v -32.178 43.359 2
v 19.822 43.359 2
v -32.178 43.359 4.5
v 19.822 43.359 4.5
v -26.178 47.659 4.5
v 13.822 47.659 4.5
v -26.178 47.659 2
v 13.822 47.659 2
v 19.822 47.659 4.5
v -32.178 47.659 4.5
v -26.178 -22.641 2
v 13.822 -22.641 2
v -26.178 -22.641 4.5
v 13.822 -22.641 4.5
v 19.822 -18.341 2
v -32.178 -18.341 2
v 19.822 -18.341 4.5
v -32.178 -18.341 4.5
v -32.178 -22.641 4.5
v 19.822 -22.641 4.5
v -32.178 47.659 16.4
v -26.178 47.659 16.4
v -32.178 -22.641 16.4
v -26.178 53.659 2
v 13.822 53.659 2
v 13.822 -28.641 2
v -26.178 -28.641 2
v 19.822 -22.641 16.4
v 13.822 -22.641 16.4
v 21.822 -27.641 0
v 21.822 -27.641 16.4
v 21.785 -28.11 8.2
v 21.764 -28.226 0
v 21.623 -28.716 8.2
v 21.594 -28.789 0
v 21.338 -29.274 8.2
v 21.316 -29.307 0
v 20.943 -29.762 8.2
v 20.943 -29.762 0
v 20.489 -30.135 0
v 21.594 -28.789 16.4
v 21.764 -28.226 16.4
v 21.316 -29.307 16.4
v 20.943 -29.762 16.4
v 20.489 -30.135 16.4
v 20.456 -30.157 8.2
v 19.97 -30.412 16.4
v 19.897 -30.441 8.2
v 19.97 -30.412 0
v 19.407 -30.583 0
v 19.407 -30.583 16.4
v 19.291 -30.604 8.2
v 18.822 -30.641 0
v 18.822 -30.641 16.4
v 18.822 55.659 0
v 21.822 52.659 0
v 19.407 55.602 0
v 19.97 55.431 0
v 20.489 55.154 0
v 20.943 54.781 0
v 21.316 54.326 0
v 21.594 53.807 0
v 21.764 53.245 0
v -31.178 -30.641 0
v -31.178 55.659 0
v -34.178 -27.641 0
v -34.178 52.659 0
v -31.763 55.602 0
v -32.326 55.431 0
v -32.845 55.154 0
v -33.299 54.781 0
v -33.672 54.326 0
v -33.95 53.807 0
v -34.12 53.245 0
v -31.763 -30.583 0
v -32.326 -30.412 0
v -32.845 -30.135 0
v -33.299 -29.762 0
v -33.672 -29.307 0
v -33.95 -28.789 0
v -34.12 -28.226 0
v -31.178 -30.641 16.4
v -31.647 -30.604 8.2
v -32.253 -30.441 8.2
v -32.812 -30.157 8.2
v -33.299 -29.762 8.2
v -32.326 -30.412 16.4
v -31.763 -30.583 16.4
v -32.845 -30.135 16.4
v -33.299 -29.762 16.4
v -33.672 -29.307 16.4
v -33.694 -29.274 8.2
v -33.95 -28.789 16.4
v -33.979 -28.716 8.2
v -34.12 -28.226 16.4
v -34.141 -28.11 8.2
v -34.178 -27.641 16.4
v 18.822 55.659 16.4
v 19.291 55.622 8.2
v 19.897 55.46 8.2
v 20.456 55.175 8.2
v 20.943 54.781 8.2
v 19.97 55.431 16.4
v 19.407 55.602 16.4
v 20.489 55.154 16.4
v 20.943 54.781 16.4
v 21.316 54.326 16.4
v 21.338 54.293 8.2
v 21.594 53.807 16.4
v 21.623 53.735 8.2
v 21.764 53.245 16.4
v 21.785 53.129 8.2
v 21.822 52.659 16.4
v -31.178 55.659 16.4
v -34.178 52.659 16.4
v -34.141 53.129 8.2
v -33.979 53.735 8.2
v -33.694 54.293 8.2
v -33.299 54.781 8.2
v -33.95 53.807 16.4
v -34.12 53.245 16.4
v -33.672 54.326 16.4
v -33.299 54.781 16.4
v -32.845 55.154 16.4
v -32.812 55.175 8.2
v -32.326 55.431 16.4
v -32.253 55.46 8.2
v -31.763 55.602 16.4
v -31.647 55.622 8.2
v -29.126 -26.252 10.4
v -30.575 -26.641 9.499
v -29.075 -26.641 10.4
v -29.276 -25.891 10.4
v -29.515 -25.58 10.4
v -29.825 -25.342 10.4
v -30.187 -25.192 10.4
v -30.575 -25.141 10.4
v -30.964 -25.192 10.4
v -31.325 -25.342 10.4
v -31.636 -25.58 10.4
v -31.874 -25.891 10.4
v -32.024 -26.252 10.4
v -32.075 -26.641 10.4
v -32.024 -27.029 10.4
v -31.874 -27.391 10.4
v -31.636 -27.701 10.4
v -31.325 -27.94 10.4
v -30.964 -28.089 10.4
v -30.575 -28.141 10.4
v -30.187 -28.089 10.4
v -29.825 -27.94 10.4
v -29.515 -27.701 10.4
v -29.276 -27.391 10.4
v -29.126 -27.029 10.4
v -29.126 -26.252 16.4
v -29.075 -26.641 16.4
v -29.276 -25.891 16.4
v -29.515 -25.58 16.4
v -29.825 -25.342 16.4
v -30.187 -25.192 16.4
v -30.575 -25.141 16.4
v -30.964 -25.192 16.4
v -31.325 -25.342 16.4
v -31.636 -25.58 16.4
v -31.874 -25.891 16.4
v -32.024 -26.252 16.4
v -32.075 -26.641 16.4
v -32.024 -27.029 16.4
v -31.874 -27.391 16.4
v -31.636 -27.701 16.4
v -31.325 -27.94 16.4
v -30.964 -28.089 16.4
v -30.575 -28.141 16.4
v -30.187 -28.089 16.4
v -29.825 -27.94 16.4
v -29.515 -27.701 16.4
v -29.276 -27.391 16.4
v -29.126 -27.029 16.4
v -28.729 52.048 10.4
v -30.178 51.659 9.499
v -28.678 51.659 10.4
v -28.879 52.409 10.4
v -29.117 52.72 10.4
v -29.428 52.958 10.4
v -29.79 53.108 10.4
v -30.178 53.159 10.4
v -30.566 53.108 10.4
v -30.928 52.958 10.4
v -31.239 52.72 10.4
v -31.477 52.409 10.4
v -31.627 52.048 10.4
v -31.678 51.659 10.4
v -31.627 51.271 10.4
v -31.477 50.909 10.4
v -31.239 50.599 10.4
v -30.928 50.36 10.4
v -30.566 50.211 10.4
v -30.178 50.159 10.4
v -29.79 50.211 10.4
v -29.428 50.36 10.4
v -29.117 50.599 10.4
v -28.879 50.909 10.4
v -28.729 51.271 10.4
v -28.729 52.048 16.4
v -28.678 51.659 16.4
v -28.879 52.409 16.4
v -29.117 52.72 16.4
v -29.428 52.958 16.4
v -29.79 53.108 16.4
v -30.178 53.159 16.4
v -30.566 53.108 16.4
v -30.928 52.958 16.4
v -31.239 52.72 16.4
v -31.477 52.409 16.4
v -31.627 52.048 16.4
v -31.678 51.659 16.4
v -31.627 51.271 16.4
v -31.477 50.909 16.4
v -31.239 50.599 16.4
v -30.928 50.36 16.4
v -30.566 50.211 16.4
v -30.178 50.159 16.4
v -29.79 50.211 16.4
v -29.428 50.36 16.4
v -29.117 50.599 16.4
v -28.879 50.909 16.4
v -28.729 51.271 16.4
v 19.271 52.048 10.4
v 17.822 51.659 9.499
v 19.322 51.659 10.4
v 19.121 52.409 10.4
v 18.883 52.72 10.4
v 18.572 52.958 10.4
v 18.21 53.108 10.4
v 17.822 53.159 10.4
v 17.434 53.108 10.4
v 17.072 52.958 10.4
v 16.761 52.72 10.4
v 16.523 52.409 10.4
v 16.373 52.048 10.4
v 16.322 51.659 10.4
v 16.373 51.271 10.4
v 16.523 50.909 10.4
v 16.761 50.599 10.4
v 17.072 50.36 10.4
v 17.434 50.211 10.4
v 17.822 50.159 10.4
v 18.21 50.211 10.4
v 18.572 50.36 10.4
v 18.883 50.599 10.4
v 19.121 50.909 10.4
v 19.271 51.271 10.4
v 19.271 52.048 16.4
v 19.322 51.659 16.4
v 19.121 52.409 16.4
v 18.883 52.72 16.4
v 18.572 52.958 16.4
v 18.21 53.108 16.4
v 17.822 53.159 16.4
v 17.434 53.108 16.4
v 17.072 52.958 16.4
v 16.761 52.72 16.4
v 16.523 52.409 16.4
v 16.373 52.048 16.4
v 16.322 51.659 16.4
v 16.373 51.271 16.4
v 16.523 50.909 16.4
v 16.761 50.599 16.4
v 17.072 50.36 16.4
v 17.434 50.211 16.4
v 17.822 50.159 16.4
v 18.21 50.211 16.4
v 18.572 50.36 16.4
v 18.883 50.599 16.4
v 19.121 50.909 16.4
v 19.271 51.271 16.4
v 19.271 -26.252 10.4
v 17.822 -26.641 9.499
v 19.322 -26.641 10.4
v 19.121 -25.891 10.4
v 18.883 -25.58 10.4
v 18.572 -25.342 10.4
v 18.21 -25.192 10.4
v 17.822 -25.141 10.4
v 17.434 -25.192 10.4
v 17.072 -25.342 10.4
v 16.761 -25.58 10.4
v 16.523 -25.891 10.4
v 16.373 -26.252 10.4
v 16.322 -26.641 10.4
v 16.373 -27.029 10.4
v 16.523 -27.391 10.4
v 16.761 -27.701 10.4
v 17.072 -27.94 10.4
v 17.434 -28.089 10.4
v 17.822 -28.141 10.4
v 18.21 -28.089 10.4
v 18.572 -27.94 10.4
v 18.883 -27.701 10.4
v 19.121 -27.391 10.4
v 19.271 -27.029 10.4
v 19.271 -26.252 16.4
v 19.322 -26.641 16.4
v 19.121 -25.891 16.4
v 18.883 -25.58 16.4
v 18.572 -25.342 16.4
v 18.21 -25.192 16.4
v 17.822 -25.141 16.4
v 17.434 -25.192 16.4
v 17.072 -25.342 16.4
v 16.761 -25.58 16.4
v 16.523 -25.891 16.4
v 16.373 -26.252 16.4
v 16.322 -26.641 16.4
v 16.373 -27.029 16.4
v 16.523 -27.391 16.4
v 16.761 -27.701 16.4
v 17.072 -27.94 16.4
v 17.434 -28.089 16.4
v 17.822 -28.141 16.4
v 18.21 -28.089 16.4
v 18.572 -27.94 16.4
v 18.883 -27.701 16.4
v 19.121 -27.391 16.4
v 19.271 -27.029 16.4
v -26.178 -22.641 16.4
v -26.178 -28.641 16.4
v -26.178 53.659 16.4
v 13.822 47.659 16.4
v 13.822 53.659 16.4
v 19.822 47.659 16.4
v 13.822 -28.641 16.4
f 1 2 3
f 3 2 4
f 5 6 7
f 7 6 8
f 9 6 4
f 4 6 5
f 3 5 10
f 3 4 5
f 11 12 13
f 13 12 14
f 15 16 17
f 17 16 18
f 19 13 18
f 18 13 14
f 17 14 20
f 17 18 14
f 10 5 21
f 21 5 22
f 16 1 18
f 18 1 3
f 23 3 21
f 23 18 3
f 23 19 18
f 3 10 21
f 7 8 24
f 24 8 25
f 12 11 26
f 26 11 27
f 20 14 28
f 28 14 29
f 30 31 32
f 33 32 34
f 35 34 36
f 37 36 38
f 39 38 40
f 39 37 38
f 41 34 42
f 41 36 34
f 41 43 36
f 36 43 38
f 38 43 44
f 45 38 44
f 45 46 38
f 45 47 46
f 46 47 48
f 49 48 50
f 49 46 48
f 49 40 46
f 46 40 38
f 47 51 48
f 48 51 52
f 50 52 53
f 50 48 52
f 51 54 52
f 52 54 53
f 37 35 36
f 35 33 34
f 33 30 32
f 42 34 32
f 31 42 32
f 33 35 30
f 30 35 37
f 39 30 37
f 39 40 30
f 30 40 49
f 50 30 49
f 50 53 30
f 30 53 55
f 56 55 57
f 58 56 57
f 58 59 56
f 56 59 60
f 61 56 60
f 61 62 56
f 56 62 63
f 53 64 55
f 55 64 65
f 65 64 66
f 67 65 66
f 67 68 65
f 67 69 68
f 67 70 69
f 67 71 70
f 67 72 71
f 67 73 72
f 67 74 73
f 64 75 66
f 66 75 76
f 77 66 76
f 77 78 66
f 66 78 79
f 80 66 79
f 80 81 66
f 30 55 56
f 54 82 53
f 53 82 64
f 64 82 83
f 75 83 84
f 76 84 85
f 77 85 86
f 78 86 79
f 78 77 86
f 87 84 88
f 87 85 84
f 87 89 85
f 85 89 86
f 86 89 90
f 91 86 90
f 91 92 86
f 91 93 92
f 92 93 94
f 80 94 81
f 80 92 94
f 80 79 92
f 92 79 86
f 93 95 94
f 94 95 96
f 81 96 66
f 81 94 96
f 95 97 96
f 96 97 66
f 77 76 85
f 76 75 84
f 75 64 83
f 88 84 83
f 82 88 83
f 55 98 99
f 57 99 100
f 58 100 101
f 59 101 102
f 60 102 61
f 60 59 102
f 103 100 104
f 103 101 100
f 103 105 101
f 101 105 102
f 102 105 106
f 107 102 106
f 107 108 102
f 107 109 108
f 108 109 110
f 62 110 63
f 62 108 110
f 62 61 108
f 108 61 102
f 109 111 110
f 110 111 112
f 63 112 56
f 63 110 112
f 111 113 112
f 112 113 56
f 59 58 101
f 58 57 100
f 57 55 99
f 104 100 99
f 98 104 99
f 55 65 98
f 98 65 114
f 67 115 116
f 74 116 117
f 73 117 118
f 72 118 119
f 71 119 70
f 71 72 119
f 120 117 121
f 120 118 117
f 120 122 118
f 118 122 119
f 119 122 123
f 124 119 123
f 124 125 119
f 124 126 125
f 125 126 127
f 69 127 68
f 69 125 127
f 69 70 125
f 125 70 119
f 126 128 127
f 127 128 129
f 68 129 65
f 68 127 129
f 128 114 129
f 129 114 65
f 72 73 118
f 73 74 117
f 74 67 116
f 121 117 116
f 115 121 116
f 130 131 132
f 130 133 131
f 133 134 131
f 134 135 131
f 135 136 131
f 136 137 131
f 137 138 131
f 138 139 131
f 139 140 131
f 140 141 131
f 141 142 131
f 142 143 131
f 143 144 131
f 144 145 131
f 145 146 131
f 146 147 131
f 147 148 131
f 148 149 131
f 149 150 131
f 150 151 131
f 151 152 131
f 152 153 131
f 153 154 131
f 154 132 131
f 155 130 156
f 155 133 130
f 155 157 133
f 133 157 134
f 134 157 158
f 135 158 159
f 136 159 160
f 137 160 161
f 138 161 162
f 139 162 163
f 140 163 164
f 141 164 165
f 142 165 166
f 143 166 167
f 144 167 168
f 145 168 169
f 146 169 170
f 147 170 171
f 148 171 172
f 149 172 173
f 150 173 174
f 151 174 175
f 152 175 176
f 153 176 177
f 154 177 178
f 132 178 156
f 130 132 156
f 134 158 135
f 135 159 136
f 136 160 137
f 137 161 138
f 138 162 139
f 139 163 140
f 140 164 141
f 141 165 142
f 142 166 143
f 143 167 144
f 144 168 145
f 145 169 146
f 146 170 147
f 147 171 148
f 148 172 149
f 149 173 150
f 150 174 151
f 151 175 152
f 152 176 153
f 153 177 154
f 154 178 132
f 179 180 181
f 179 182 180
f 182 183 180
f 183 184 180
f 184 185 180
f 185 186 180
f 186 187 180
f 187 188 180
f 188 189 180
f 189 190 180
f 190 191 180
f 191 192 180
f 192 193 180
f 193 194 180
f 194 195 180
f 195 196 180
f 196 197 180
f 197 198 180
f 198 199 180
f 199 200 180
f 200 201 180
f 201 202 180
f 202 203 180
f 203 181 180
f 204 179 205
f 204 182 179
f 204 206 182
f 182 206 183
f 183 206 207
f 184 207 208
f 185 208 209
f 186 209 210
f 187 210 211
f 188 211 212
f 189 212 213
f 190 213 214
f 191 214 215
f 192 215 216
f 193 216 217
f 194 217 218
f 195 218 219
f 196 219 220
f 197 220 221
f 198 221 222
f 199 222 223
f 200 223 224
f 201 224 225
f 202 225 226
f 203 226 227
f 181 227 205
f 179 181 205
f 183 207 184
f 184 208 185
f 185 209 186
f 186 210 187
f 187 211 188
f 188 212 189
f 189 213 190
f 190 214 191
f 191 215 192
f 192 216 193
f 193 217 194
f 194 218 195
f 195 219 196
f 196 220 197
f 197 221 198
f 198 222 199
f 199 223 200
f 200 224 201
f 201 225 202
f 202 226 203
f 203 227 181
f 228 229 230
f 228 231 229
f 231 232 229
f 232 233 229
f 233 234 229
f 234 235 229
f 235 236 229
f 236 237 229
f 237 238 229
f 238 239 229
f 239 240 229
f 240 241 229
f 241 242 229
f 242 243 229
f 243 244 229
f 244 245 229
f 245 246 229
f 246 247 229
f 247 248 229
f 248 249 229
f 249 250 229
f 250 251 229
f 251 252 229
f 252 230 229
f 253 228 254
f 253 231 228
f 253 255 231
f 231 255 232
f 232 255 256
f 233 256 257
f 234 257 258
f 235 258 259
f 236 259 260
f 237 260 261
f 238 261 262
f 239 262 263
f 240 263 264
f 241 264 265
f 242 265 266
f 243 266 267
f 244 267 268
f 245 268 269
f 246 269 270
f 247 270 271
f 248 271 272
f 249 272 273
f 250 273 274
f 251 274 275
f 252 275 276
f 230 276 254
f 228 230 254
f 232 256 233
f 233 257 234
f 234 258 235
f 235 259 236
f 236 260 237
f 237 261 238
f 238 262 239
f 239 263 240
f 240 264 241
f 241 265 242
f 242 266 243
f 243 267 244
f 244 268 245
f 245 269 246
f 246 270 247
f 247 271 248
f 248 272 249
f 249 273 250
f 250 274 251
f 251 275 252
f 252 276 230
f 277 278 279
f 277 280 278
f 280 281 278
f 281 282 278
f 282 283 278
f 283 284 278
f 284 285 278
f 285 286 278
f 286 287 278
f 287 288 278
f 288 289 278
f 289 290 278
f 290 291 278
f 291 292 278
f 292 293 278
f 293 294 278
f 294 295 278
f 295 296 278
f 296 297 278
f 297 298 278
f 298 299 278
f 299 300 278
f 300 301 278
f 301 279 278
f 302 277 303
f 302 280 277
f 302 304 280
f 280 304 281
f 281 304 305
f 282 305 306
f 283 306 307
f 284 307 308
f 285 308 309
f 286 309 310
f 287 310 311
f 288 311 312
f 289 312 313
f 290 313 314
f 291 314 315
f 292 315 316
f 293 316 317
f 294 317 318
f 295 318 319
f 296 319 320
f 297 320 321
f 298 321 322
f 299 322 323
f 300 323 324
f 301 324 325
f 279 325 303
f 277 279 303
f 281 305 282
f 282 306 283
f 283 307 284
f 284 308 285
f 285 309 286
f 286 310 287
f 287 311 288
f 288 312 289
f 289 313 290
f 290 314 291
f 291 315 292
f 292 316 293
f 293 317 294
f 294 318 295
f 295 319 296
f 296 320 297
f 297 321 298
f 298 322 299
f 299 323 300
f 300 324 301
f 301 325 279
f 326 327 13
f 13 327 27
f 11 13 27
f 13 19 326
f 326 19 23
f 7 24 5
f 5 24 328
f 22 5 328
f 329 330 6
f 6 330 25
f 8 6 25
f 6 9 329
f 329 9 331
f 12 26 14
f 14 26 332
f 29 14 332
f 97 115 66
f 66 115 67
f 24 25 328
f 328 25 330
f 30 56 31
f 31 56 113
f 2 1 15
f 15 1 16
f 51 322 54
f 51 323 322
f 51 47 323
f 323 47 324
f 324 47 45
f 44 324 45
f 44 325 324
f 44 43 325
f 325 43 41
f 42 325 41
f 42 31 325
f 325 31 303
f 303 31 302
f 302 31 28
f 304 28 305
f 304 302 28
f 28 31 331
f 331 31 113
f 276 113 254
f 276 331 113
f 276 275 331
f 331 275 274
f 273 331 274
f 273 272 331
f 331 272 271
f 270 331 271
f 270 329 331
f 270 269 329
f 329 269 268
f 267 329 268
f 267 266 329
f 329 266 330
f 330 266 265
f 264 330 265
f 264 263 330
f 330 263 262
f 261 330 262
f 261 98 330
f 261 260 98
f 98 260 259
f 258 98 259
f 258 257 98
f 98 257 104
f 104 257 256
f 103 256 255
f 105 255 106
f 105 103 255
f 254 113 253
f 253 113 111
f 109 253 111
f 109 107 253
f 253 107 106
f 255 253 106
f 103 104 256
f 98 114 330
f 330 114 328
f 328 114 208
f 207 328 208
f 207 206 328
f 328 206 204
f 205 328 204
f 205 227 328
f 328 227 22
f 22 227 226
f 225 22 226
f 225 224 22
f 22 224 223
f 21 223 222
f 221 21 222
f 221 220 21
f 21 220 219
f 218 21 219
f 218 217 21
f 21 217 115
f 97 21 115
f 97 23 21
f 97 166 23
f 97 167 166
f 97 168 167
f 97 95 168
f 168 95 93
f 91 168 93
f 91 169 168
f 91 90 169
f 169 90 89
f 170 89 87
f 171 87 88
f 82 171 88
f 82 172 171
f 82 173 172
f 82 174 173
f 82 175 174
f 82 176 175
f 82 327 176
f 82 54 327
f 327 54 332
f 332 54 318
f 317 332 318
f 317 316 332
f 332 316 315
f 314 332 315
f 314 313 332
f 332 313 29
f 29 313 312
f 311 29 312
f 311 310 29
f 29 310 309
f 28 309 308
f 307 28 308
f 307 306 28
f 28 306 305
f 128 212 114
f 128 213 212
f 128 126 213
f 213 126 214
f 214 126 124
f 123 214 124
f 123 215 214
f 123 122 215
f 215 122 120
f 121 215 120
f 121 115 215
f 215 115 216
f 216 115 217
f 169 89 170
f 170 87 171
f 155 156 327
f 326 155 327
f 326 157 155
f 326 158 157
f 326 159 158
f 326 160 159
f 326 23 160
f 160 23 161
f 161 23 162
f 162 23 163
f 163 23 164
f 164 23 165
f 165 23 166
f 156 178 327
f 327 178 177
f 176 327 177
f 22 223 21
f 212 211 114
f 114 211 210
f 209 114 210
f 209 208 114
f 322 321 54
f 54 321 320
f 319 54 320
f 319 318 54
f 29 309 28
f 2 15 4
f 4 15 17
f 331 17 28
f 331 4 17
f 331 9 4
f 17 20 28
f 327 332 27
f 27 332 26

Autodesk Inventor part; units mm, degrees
ref_plane "YZ Plane" through (0, 0, 0) normal (1, 0, 0) x (0, 1, 0)
ref_plane "XZ Plane" through (0, 0, 0) normal (0, 1, 0) x (-1, 0, 0)
ref_plane "XY Plane" through (0, 0, 0) normal (0, 0, 1) x (1, 0, 0)
sketch "Sketch1" plane through (0, 0, 0) normal (0, 0, 1) x (1, 0, 0)
  line L0 (-34.1779, 55.6594) -> (21.8221, 55.6594)
  line L1 (21.8221, 55.6594) -> (21.8221, -30.6406)
  line L2 (21.8221, -30.6406) -> (-34.1779, -30.6406)
  line L3 (-34.1779, -30.6406) -> (-34.1779, 55.6594)
  point P0 (0, 0)
  dimension "d0" = 56
  dimension "d1" = 86.3
extrude "Extrusion1" add sketch "Sketch1" along normal blind 2
sketch "Sketch2" plane through (0, 0, 2) normal (0, 0, 1) x (1, 0, 0)
  line L0 (-34.1779, 55.6594) -> (21.8221, 55.6594)
  line L1 (21.8221, 55.6594) -> (21.8221, -30.6406)
  line L2 (21.8221, -30.6406) -> (-34.1779, -30.6406)
  line L3 (-34.1779, -30.6406) -> (-34.1779, 55.6594)
  line L4 (-32.1779, 53.6594) -> (19.8221, 53.6594)
  line L5 (19.8221, 53.6594) -> (19.8221, -28.6406)
  line L6 (19.8221, -28.6406) -> (-32.1779, -28.6406)
  line L7 (-32.1779, -28.6406) -> (-32.1779, 53.6594)
  point P0 (0, 0)
  dimension "d4" = 2
  dimension "d5" = 2
  dimension "d6" = 2
  dimension "d7" = 2
extrude "Extrusion2" add sketch "Sketch2" along normal blind 14.4
sketch "Sketch3" plane through (0, 0, 2) normal (0, 0, 1) x (1, 0, 0)
  line L0 (-34.1779, 55.6594) -> (-26.1779, 55.6594)
  line L1 (-26.1779, 55.6594) -> (-26.1779, 47.6594)
  line L2 (-26.1779, 47.6594) -> (-34.1779, 47.6594)
  line L3 (-34.1779, 47.6594) -> (-34.1779, 55.6594)
  line L4 (21.8221, 55.6594) -> (13.8221, 55.6594)
  line L5 (13.8221, 55.6594) -> (13.8221, 47.6594)
  line L6 (13.8221, 47.6594) -> (21.8221, 47.6594)
  line L7 (21.8221, 47.6594) -> (21.8221, 55.6594)
  line L8 (-34.1779, -30.6406) -> (-26.1779, -30.6406)
  line L9 (-26.1779, -30.6406) -> (-26.1779, -22.6406)
  line L10 (-26.1779, -22.6406) -> (-34.1779, -22.6406)
  line L11 (-34.1779, -22.6406) -> (-34.1779, -30.6406)
  line L12 (21.8221, -30.6406) -> (13.8221, -30.6406)
  line L13 (13.8221, -30.6406) -> (13.8221, -22.6406)
  line L14 (13.8221, -22.6406) -> (21.8221, -22.6406)
  line L15 (21.8221, -22.6406) -> (21.8221, -30.6406)
  line L16 (-34.1779, -30.6406) -> (21.8221, -30.6406) projected
  point P0 (0, 0)
  dimension "d10" = 8
  dimension "d11" = 8
  dimension "d12" = 8
  dimension "d13" = 8
  dimension "d14" = 8
  dimension "d15" = 8
  dimension "d16" = 8
  dimension "d17" = 8
extrude "Extrusion3" add sketch "Sketch3" along normal blind 14.4
sketch "Sketch4" plane through (0, 0, 16.4) normal (0, 0, 1) x (1, 0, 0)
  line L0 (-26.1779, -22.6406) -> (-32.1779, -22.6406) projected
  line L1 (19.8221, -22.6406) -> (13.8221, -22.6406) projected
  line L2 (21.8221, 55.6594) -> (21.8221, -30.6406) projected
  line L3 (21.8221, 55.6594) -> (-34.1779, 55.6594) projected
  line L4 (-34.1779, -30.6406) -> (-34.1779, 55.6594) projected
  point P0 (0, 0)
  point P1 (-30.1779, 51.6594)
  point P2 (17.8221, 51.6594)
  point P3 (-30.5754, -26.6406)
  point P4 (17.8221, -26.6406)
  dimension "d20" = 4
  dimension "d21" = 4
  dimension "d22" = 4
  dimension "d23" = 4
  dimension "d24" = 4
  dimension "d25" = 4
  dimension "d26" = 4
hole "Hole1" at (-30.1779, 51.6594, 16.4) at (17.8221, 51.6594, 16.4) at (-30.5754, -26.6406, 16.4) at (17.8221, -26.6406, 16.4) direction (0, 0, -1) diameter 3 depth 6 tip angle 118
fillet "Fillet1" radius 3 4 edges at (-34.1779, 55.6594, 8.2) (21.8221, 55.6594, 8.2) (-34.1779, -30.6406, 8.2) (21.8221, -30.6406, 8.2)
sketch "Sketch5" plane through (0, 0, 2) normal (0, 0, 1) x (1, 0, 0)
  line L0 (-32.1779, 47.6594) -> (19.8221, 47.6594)
  line L1 (19.8221, 47.6594) -> (19.8221, 43.3594)
  line L2 (19.8221, 43.3594) -> (-32.1779, 43.3594)
  line L3 (-32.1779, 43.3594) -> (-32.1779, 47.6594)
  line L4 (19.8221, 47.6594) -> (19.8221, -22.6406) projected
  line L5 (-32.1779, -22.6406) -> (19.8221, -22.6406)
  line L6 (19.8221, -22.6406) -> (19.8221, -18.3406)
  line L7 (19.8221, -18.3406) -> (-32.1779, -18.3406)
  line L8 (-32.1779, -18.3406) -> (-32.1779, -22.6406)
  point P0 (0, 0)
  dimension "d35" = 4.3
  dimension "d36" = 4.3
extrude "Extrusion4" add sketch "Sketch5" along normal blind 2.5
properties part number "base v2"
